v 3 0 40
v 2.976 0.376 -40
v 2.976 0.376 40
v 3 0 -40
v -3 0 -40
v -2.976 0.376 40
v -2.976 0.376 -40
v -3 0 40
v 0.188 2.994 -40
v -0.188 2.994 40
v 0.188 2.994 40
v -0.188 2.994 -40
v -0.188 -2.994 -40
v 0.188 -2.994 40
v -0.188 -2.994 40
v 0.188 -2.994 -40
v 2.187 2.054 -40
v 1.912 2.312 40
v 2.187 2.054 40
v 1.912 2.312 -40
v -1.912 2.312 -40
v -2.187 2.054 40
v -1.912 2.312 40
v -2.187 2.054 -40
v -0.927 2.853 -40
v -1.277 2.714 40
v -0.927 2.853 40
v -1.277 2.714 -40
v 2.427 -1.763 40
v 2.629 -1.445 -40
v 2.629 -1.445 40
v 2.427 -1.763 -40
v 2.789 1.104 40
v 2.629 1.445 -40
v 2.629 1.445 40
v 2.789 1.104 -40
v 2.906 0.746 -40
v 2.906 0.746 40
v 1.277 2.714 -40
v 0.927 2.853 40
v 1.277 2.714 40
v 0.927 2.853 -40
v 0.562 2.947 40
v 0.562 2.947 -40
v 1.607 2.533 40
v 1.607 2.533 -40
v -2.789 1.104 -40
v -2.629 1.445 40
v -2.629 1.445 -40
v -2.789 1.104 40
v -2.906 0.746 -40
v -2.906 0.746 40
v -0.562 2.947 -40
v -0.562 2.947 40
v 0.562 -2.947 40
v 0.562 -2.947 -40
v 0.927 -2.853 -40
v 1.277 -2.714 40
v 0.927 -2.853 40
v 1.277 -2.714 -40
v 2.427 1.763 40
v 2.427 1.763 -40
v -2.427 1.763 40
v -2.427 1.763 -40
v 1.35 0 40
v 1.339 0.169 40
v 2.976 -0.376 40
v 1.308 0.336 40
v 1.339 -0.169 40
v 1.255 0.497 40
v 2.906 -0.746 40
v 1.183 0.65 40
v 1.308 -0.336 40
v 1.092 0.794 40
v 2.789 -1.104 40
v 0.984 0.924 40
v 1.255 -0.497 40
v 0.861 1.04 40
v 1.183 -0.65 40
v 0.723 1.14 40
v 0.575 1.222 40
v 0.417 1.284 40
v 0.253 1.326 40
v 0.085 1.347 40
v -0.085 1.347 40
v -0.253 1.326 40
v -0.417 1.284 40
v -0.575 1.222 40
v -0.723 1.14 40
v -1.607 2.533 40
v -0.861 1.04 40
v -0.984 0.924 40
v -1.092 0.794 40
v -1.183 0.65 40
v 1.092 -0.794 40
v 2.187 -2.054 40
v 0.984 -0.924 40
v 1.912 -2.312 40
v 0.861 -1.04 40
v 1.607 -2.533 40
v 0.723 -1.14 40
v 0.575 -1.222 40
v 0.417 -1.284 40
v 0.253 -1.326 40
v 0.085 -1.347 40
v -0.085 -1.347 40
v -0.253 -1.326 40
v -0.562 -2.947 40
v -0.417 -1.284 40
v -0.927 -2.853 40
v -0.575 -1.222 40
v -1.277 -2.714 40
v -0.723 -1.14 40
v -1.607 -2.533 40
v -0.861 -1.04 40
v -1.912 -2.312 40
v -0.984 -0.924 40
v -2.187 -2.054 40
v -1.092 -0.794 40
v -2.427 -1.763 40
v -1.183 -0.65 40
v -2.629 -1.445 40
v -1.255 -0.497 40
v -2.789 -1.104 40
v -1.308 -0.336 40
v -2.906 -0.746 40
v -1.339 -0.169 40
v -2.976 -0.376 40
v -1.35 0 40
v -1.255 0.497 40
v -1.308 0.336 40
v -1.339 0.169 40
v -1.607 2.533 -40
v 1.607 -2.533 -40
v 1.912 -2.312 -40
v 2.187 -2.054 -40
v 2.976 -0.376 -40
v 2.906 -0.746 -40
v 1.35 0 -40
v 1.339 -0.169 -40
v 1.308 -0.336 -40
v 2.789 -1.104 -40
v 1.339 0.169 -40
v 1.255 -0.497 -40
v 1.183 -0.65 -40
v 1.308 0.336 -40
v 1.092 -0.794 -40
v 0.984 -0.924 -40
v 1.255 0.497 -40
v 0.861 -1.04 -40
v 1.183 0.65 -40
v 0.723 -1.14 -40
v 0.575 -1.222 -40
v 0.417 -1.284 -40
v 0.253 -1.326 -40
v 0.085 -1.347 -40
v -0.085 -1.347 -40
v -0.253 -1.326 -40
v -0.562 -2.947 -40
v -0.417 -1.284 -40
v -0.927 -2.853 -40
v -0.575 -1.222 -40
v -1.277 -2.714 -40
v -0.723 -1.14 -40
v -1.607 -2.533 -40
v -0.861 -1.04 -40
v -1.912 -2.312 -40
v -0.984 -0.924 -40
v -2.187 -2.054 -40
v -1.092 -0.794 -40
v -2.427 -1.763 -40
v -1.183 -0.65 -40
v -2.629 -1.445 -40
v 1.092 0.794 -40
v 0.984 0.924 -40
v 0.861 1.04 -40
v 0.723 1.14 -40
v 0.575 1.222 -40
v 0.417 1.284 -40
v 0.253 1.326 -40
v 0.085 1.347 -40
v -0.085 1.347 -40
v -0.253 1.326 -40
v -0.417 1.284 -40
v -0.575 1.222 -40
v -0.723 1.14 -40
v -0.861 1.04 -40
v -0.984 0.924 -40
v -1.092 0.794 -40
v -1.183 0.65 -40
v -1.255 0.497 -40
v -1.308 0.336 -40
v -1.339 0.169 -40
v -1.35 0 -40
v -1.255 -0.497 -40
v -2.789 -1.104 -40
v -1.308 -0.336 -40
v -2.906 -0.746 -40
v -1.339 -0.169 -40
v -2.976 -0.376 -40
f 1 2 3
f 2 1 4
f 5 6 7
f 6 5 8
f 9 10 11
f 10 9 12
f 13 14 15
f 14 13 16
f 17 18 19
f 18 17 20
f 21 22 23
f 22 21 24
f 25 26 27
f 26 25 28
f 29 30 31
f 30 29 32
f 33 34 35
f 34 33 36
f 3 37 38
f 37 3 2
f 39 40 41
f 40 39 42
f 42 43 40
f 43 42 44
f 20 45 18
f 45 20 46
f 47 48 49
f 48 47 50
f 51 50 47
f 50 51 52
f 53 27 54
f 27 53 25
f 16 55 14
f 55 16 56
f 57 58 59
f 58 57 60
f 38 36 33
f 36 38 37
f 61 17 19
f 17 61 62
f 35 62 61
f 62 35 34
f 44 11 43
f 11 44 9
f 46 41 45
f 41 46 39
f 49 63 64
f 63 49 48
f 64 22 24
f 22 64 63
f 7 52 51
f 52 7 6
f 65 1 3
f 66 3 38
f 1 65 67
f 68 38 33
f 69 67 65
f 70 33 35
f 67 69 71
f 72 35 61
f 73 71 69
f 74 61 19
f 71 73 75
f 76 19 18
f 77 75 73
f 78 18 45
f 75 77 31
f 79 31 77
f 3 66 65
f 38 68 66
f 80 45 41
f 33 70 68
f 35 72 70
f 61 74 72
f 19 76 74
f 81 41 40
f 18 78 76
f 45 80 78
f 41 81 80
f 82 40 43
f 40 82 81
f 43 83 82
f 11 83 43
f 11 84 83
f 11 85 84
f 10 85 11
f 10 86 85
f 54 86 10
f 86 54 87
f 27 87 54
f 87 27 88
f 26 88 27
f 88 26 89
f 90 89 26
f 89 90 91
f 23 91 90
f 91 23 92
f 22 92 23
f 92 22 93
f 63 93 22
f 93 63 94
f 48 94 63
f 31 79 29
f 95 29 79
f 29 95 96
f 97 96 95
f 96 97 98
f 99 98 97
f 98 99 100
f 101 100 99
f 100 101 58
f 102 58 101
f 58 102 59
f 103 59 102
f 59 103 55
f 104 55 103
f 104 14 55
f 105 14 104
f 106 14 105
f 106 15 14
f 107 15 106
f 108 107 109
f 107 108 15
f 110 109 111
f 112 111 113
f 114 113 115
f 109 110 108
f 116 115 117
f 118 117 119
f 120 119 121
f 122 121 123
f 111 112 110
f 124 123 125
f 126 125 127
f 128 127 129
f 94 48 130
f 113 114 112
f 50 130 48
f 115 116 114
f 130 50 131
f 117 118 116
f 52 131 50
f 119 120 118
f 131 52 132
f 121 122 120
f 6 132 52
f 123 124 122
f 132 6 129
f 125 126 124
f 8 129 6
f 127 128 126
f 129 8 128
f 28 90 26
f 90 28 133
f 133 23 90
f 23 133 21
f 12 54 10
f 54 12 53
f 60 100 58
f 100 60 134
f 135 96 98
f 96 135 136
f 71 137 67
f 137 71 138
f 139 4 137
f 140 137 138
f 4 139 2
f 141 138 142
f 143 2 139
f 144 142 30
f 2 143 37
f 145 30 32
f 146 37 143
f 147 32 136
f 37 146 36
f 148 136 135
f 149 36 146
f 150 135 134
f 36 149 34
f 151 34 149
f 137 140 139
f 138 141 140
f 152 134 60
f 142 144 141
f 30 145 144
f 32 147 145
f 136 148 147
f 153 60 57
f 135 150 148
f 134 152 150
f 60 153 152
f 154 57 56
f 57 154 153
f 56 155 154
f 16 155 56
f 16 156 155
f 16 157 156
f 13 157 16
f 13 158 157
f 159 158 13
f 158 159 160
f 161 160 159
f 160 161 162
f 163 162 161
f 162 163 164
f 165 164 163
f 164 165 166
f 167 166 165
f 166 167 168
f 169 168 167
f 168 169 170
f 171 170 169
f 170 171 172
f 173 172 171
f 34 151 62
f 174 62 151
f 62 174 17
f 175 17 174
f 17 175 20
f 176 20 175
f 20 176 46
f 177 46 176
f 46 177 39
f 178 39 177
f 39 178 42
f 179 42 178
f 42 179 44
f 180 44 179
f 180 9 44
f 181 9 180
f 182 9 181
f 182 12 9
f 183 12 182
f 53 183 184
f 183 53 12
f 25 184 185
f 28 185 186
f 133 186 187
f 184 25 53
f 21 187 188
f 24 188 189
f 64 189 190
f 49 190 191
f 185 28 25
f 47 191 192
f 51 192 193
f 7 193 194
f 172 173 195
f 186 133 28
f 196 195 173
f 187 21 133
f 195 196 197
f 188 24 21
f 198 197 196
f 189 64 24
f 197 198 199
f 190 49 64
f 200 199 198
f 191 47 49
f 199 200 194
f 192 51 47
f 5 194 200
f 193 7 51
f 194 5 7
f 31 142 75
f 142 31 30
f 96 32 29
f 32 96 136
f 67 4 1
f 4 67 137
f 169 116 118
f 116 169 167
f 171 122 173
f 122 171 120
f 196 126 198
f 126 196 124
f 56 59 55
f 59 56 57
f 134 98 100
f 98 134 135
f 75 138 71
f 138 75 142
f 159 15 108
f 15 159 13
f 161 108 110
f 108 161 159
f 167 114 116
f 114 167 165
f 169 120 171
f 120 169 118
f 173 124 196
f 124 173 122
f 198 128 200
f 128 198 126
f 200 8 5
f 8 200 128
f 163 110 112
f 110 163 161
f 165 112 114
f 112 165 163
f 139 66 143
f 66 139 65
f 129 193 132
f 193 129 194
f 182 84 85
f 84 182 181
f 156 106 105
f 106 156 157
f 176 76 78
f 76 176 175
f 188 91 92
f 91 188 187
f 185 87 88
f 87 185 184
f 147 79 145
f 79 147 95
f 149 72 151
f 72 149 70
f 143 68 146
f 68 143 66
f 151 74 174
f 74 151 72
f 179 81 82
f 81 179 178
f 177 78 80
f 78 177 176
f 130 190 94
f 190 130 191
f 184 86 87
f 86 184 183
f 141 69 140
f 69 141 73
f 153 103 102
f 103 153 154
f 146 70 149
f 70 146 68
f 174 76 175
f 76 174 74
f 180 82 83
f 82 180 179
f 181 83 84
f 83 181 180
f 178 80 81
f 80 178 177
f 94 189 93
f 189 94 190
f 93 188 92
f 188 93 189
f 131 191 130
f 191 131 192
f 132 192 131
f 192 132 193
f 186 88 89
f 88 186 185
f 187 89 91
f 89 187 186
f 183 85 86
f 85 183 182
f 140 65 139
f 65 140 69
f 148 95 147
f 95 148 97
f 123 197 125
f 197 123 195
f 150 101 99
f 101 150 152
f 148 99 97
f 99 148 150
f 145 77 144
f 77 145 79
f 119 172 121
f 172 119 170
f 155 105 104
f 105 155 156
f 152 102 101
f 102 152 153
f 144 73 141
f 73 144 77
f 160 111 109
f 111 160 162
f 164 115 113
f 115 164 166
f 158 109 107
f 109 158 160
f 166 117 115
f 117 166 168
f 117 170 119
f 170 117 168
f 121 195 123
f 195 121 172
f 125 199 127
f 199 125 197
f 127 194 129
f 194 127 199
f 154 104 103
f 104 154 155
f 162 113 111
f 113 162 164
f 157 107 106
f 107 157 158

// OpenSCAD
$fn = 50;


difference() {
	union() {
		translate(v = [0, 0, -40.0000000000]) {
			cylinder(h = 80, r = 3.0000000000);
		}
	}
	union() {
		translate(v = [0, 0, -100.0000000000]) {
			cylinder(h = 200, r = 1.3500000000);
		}
	}
}
